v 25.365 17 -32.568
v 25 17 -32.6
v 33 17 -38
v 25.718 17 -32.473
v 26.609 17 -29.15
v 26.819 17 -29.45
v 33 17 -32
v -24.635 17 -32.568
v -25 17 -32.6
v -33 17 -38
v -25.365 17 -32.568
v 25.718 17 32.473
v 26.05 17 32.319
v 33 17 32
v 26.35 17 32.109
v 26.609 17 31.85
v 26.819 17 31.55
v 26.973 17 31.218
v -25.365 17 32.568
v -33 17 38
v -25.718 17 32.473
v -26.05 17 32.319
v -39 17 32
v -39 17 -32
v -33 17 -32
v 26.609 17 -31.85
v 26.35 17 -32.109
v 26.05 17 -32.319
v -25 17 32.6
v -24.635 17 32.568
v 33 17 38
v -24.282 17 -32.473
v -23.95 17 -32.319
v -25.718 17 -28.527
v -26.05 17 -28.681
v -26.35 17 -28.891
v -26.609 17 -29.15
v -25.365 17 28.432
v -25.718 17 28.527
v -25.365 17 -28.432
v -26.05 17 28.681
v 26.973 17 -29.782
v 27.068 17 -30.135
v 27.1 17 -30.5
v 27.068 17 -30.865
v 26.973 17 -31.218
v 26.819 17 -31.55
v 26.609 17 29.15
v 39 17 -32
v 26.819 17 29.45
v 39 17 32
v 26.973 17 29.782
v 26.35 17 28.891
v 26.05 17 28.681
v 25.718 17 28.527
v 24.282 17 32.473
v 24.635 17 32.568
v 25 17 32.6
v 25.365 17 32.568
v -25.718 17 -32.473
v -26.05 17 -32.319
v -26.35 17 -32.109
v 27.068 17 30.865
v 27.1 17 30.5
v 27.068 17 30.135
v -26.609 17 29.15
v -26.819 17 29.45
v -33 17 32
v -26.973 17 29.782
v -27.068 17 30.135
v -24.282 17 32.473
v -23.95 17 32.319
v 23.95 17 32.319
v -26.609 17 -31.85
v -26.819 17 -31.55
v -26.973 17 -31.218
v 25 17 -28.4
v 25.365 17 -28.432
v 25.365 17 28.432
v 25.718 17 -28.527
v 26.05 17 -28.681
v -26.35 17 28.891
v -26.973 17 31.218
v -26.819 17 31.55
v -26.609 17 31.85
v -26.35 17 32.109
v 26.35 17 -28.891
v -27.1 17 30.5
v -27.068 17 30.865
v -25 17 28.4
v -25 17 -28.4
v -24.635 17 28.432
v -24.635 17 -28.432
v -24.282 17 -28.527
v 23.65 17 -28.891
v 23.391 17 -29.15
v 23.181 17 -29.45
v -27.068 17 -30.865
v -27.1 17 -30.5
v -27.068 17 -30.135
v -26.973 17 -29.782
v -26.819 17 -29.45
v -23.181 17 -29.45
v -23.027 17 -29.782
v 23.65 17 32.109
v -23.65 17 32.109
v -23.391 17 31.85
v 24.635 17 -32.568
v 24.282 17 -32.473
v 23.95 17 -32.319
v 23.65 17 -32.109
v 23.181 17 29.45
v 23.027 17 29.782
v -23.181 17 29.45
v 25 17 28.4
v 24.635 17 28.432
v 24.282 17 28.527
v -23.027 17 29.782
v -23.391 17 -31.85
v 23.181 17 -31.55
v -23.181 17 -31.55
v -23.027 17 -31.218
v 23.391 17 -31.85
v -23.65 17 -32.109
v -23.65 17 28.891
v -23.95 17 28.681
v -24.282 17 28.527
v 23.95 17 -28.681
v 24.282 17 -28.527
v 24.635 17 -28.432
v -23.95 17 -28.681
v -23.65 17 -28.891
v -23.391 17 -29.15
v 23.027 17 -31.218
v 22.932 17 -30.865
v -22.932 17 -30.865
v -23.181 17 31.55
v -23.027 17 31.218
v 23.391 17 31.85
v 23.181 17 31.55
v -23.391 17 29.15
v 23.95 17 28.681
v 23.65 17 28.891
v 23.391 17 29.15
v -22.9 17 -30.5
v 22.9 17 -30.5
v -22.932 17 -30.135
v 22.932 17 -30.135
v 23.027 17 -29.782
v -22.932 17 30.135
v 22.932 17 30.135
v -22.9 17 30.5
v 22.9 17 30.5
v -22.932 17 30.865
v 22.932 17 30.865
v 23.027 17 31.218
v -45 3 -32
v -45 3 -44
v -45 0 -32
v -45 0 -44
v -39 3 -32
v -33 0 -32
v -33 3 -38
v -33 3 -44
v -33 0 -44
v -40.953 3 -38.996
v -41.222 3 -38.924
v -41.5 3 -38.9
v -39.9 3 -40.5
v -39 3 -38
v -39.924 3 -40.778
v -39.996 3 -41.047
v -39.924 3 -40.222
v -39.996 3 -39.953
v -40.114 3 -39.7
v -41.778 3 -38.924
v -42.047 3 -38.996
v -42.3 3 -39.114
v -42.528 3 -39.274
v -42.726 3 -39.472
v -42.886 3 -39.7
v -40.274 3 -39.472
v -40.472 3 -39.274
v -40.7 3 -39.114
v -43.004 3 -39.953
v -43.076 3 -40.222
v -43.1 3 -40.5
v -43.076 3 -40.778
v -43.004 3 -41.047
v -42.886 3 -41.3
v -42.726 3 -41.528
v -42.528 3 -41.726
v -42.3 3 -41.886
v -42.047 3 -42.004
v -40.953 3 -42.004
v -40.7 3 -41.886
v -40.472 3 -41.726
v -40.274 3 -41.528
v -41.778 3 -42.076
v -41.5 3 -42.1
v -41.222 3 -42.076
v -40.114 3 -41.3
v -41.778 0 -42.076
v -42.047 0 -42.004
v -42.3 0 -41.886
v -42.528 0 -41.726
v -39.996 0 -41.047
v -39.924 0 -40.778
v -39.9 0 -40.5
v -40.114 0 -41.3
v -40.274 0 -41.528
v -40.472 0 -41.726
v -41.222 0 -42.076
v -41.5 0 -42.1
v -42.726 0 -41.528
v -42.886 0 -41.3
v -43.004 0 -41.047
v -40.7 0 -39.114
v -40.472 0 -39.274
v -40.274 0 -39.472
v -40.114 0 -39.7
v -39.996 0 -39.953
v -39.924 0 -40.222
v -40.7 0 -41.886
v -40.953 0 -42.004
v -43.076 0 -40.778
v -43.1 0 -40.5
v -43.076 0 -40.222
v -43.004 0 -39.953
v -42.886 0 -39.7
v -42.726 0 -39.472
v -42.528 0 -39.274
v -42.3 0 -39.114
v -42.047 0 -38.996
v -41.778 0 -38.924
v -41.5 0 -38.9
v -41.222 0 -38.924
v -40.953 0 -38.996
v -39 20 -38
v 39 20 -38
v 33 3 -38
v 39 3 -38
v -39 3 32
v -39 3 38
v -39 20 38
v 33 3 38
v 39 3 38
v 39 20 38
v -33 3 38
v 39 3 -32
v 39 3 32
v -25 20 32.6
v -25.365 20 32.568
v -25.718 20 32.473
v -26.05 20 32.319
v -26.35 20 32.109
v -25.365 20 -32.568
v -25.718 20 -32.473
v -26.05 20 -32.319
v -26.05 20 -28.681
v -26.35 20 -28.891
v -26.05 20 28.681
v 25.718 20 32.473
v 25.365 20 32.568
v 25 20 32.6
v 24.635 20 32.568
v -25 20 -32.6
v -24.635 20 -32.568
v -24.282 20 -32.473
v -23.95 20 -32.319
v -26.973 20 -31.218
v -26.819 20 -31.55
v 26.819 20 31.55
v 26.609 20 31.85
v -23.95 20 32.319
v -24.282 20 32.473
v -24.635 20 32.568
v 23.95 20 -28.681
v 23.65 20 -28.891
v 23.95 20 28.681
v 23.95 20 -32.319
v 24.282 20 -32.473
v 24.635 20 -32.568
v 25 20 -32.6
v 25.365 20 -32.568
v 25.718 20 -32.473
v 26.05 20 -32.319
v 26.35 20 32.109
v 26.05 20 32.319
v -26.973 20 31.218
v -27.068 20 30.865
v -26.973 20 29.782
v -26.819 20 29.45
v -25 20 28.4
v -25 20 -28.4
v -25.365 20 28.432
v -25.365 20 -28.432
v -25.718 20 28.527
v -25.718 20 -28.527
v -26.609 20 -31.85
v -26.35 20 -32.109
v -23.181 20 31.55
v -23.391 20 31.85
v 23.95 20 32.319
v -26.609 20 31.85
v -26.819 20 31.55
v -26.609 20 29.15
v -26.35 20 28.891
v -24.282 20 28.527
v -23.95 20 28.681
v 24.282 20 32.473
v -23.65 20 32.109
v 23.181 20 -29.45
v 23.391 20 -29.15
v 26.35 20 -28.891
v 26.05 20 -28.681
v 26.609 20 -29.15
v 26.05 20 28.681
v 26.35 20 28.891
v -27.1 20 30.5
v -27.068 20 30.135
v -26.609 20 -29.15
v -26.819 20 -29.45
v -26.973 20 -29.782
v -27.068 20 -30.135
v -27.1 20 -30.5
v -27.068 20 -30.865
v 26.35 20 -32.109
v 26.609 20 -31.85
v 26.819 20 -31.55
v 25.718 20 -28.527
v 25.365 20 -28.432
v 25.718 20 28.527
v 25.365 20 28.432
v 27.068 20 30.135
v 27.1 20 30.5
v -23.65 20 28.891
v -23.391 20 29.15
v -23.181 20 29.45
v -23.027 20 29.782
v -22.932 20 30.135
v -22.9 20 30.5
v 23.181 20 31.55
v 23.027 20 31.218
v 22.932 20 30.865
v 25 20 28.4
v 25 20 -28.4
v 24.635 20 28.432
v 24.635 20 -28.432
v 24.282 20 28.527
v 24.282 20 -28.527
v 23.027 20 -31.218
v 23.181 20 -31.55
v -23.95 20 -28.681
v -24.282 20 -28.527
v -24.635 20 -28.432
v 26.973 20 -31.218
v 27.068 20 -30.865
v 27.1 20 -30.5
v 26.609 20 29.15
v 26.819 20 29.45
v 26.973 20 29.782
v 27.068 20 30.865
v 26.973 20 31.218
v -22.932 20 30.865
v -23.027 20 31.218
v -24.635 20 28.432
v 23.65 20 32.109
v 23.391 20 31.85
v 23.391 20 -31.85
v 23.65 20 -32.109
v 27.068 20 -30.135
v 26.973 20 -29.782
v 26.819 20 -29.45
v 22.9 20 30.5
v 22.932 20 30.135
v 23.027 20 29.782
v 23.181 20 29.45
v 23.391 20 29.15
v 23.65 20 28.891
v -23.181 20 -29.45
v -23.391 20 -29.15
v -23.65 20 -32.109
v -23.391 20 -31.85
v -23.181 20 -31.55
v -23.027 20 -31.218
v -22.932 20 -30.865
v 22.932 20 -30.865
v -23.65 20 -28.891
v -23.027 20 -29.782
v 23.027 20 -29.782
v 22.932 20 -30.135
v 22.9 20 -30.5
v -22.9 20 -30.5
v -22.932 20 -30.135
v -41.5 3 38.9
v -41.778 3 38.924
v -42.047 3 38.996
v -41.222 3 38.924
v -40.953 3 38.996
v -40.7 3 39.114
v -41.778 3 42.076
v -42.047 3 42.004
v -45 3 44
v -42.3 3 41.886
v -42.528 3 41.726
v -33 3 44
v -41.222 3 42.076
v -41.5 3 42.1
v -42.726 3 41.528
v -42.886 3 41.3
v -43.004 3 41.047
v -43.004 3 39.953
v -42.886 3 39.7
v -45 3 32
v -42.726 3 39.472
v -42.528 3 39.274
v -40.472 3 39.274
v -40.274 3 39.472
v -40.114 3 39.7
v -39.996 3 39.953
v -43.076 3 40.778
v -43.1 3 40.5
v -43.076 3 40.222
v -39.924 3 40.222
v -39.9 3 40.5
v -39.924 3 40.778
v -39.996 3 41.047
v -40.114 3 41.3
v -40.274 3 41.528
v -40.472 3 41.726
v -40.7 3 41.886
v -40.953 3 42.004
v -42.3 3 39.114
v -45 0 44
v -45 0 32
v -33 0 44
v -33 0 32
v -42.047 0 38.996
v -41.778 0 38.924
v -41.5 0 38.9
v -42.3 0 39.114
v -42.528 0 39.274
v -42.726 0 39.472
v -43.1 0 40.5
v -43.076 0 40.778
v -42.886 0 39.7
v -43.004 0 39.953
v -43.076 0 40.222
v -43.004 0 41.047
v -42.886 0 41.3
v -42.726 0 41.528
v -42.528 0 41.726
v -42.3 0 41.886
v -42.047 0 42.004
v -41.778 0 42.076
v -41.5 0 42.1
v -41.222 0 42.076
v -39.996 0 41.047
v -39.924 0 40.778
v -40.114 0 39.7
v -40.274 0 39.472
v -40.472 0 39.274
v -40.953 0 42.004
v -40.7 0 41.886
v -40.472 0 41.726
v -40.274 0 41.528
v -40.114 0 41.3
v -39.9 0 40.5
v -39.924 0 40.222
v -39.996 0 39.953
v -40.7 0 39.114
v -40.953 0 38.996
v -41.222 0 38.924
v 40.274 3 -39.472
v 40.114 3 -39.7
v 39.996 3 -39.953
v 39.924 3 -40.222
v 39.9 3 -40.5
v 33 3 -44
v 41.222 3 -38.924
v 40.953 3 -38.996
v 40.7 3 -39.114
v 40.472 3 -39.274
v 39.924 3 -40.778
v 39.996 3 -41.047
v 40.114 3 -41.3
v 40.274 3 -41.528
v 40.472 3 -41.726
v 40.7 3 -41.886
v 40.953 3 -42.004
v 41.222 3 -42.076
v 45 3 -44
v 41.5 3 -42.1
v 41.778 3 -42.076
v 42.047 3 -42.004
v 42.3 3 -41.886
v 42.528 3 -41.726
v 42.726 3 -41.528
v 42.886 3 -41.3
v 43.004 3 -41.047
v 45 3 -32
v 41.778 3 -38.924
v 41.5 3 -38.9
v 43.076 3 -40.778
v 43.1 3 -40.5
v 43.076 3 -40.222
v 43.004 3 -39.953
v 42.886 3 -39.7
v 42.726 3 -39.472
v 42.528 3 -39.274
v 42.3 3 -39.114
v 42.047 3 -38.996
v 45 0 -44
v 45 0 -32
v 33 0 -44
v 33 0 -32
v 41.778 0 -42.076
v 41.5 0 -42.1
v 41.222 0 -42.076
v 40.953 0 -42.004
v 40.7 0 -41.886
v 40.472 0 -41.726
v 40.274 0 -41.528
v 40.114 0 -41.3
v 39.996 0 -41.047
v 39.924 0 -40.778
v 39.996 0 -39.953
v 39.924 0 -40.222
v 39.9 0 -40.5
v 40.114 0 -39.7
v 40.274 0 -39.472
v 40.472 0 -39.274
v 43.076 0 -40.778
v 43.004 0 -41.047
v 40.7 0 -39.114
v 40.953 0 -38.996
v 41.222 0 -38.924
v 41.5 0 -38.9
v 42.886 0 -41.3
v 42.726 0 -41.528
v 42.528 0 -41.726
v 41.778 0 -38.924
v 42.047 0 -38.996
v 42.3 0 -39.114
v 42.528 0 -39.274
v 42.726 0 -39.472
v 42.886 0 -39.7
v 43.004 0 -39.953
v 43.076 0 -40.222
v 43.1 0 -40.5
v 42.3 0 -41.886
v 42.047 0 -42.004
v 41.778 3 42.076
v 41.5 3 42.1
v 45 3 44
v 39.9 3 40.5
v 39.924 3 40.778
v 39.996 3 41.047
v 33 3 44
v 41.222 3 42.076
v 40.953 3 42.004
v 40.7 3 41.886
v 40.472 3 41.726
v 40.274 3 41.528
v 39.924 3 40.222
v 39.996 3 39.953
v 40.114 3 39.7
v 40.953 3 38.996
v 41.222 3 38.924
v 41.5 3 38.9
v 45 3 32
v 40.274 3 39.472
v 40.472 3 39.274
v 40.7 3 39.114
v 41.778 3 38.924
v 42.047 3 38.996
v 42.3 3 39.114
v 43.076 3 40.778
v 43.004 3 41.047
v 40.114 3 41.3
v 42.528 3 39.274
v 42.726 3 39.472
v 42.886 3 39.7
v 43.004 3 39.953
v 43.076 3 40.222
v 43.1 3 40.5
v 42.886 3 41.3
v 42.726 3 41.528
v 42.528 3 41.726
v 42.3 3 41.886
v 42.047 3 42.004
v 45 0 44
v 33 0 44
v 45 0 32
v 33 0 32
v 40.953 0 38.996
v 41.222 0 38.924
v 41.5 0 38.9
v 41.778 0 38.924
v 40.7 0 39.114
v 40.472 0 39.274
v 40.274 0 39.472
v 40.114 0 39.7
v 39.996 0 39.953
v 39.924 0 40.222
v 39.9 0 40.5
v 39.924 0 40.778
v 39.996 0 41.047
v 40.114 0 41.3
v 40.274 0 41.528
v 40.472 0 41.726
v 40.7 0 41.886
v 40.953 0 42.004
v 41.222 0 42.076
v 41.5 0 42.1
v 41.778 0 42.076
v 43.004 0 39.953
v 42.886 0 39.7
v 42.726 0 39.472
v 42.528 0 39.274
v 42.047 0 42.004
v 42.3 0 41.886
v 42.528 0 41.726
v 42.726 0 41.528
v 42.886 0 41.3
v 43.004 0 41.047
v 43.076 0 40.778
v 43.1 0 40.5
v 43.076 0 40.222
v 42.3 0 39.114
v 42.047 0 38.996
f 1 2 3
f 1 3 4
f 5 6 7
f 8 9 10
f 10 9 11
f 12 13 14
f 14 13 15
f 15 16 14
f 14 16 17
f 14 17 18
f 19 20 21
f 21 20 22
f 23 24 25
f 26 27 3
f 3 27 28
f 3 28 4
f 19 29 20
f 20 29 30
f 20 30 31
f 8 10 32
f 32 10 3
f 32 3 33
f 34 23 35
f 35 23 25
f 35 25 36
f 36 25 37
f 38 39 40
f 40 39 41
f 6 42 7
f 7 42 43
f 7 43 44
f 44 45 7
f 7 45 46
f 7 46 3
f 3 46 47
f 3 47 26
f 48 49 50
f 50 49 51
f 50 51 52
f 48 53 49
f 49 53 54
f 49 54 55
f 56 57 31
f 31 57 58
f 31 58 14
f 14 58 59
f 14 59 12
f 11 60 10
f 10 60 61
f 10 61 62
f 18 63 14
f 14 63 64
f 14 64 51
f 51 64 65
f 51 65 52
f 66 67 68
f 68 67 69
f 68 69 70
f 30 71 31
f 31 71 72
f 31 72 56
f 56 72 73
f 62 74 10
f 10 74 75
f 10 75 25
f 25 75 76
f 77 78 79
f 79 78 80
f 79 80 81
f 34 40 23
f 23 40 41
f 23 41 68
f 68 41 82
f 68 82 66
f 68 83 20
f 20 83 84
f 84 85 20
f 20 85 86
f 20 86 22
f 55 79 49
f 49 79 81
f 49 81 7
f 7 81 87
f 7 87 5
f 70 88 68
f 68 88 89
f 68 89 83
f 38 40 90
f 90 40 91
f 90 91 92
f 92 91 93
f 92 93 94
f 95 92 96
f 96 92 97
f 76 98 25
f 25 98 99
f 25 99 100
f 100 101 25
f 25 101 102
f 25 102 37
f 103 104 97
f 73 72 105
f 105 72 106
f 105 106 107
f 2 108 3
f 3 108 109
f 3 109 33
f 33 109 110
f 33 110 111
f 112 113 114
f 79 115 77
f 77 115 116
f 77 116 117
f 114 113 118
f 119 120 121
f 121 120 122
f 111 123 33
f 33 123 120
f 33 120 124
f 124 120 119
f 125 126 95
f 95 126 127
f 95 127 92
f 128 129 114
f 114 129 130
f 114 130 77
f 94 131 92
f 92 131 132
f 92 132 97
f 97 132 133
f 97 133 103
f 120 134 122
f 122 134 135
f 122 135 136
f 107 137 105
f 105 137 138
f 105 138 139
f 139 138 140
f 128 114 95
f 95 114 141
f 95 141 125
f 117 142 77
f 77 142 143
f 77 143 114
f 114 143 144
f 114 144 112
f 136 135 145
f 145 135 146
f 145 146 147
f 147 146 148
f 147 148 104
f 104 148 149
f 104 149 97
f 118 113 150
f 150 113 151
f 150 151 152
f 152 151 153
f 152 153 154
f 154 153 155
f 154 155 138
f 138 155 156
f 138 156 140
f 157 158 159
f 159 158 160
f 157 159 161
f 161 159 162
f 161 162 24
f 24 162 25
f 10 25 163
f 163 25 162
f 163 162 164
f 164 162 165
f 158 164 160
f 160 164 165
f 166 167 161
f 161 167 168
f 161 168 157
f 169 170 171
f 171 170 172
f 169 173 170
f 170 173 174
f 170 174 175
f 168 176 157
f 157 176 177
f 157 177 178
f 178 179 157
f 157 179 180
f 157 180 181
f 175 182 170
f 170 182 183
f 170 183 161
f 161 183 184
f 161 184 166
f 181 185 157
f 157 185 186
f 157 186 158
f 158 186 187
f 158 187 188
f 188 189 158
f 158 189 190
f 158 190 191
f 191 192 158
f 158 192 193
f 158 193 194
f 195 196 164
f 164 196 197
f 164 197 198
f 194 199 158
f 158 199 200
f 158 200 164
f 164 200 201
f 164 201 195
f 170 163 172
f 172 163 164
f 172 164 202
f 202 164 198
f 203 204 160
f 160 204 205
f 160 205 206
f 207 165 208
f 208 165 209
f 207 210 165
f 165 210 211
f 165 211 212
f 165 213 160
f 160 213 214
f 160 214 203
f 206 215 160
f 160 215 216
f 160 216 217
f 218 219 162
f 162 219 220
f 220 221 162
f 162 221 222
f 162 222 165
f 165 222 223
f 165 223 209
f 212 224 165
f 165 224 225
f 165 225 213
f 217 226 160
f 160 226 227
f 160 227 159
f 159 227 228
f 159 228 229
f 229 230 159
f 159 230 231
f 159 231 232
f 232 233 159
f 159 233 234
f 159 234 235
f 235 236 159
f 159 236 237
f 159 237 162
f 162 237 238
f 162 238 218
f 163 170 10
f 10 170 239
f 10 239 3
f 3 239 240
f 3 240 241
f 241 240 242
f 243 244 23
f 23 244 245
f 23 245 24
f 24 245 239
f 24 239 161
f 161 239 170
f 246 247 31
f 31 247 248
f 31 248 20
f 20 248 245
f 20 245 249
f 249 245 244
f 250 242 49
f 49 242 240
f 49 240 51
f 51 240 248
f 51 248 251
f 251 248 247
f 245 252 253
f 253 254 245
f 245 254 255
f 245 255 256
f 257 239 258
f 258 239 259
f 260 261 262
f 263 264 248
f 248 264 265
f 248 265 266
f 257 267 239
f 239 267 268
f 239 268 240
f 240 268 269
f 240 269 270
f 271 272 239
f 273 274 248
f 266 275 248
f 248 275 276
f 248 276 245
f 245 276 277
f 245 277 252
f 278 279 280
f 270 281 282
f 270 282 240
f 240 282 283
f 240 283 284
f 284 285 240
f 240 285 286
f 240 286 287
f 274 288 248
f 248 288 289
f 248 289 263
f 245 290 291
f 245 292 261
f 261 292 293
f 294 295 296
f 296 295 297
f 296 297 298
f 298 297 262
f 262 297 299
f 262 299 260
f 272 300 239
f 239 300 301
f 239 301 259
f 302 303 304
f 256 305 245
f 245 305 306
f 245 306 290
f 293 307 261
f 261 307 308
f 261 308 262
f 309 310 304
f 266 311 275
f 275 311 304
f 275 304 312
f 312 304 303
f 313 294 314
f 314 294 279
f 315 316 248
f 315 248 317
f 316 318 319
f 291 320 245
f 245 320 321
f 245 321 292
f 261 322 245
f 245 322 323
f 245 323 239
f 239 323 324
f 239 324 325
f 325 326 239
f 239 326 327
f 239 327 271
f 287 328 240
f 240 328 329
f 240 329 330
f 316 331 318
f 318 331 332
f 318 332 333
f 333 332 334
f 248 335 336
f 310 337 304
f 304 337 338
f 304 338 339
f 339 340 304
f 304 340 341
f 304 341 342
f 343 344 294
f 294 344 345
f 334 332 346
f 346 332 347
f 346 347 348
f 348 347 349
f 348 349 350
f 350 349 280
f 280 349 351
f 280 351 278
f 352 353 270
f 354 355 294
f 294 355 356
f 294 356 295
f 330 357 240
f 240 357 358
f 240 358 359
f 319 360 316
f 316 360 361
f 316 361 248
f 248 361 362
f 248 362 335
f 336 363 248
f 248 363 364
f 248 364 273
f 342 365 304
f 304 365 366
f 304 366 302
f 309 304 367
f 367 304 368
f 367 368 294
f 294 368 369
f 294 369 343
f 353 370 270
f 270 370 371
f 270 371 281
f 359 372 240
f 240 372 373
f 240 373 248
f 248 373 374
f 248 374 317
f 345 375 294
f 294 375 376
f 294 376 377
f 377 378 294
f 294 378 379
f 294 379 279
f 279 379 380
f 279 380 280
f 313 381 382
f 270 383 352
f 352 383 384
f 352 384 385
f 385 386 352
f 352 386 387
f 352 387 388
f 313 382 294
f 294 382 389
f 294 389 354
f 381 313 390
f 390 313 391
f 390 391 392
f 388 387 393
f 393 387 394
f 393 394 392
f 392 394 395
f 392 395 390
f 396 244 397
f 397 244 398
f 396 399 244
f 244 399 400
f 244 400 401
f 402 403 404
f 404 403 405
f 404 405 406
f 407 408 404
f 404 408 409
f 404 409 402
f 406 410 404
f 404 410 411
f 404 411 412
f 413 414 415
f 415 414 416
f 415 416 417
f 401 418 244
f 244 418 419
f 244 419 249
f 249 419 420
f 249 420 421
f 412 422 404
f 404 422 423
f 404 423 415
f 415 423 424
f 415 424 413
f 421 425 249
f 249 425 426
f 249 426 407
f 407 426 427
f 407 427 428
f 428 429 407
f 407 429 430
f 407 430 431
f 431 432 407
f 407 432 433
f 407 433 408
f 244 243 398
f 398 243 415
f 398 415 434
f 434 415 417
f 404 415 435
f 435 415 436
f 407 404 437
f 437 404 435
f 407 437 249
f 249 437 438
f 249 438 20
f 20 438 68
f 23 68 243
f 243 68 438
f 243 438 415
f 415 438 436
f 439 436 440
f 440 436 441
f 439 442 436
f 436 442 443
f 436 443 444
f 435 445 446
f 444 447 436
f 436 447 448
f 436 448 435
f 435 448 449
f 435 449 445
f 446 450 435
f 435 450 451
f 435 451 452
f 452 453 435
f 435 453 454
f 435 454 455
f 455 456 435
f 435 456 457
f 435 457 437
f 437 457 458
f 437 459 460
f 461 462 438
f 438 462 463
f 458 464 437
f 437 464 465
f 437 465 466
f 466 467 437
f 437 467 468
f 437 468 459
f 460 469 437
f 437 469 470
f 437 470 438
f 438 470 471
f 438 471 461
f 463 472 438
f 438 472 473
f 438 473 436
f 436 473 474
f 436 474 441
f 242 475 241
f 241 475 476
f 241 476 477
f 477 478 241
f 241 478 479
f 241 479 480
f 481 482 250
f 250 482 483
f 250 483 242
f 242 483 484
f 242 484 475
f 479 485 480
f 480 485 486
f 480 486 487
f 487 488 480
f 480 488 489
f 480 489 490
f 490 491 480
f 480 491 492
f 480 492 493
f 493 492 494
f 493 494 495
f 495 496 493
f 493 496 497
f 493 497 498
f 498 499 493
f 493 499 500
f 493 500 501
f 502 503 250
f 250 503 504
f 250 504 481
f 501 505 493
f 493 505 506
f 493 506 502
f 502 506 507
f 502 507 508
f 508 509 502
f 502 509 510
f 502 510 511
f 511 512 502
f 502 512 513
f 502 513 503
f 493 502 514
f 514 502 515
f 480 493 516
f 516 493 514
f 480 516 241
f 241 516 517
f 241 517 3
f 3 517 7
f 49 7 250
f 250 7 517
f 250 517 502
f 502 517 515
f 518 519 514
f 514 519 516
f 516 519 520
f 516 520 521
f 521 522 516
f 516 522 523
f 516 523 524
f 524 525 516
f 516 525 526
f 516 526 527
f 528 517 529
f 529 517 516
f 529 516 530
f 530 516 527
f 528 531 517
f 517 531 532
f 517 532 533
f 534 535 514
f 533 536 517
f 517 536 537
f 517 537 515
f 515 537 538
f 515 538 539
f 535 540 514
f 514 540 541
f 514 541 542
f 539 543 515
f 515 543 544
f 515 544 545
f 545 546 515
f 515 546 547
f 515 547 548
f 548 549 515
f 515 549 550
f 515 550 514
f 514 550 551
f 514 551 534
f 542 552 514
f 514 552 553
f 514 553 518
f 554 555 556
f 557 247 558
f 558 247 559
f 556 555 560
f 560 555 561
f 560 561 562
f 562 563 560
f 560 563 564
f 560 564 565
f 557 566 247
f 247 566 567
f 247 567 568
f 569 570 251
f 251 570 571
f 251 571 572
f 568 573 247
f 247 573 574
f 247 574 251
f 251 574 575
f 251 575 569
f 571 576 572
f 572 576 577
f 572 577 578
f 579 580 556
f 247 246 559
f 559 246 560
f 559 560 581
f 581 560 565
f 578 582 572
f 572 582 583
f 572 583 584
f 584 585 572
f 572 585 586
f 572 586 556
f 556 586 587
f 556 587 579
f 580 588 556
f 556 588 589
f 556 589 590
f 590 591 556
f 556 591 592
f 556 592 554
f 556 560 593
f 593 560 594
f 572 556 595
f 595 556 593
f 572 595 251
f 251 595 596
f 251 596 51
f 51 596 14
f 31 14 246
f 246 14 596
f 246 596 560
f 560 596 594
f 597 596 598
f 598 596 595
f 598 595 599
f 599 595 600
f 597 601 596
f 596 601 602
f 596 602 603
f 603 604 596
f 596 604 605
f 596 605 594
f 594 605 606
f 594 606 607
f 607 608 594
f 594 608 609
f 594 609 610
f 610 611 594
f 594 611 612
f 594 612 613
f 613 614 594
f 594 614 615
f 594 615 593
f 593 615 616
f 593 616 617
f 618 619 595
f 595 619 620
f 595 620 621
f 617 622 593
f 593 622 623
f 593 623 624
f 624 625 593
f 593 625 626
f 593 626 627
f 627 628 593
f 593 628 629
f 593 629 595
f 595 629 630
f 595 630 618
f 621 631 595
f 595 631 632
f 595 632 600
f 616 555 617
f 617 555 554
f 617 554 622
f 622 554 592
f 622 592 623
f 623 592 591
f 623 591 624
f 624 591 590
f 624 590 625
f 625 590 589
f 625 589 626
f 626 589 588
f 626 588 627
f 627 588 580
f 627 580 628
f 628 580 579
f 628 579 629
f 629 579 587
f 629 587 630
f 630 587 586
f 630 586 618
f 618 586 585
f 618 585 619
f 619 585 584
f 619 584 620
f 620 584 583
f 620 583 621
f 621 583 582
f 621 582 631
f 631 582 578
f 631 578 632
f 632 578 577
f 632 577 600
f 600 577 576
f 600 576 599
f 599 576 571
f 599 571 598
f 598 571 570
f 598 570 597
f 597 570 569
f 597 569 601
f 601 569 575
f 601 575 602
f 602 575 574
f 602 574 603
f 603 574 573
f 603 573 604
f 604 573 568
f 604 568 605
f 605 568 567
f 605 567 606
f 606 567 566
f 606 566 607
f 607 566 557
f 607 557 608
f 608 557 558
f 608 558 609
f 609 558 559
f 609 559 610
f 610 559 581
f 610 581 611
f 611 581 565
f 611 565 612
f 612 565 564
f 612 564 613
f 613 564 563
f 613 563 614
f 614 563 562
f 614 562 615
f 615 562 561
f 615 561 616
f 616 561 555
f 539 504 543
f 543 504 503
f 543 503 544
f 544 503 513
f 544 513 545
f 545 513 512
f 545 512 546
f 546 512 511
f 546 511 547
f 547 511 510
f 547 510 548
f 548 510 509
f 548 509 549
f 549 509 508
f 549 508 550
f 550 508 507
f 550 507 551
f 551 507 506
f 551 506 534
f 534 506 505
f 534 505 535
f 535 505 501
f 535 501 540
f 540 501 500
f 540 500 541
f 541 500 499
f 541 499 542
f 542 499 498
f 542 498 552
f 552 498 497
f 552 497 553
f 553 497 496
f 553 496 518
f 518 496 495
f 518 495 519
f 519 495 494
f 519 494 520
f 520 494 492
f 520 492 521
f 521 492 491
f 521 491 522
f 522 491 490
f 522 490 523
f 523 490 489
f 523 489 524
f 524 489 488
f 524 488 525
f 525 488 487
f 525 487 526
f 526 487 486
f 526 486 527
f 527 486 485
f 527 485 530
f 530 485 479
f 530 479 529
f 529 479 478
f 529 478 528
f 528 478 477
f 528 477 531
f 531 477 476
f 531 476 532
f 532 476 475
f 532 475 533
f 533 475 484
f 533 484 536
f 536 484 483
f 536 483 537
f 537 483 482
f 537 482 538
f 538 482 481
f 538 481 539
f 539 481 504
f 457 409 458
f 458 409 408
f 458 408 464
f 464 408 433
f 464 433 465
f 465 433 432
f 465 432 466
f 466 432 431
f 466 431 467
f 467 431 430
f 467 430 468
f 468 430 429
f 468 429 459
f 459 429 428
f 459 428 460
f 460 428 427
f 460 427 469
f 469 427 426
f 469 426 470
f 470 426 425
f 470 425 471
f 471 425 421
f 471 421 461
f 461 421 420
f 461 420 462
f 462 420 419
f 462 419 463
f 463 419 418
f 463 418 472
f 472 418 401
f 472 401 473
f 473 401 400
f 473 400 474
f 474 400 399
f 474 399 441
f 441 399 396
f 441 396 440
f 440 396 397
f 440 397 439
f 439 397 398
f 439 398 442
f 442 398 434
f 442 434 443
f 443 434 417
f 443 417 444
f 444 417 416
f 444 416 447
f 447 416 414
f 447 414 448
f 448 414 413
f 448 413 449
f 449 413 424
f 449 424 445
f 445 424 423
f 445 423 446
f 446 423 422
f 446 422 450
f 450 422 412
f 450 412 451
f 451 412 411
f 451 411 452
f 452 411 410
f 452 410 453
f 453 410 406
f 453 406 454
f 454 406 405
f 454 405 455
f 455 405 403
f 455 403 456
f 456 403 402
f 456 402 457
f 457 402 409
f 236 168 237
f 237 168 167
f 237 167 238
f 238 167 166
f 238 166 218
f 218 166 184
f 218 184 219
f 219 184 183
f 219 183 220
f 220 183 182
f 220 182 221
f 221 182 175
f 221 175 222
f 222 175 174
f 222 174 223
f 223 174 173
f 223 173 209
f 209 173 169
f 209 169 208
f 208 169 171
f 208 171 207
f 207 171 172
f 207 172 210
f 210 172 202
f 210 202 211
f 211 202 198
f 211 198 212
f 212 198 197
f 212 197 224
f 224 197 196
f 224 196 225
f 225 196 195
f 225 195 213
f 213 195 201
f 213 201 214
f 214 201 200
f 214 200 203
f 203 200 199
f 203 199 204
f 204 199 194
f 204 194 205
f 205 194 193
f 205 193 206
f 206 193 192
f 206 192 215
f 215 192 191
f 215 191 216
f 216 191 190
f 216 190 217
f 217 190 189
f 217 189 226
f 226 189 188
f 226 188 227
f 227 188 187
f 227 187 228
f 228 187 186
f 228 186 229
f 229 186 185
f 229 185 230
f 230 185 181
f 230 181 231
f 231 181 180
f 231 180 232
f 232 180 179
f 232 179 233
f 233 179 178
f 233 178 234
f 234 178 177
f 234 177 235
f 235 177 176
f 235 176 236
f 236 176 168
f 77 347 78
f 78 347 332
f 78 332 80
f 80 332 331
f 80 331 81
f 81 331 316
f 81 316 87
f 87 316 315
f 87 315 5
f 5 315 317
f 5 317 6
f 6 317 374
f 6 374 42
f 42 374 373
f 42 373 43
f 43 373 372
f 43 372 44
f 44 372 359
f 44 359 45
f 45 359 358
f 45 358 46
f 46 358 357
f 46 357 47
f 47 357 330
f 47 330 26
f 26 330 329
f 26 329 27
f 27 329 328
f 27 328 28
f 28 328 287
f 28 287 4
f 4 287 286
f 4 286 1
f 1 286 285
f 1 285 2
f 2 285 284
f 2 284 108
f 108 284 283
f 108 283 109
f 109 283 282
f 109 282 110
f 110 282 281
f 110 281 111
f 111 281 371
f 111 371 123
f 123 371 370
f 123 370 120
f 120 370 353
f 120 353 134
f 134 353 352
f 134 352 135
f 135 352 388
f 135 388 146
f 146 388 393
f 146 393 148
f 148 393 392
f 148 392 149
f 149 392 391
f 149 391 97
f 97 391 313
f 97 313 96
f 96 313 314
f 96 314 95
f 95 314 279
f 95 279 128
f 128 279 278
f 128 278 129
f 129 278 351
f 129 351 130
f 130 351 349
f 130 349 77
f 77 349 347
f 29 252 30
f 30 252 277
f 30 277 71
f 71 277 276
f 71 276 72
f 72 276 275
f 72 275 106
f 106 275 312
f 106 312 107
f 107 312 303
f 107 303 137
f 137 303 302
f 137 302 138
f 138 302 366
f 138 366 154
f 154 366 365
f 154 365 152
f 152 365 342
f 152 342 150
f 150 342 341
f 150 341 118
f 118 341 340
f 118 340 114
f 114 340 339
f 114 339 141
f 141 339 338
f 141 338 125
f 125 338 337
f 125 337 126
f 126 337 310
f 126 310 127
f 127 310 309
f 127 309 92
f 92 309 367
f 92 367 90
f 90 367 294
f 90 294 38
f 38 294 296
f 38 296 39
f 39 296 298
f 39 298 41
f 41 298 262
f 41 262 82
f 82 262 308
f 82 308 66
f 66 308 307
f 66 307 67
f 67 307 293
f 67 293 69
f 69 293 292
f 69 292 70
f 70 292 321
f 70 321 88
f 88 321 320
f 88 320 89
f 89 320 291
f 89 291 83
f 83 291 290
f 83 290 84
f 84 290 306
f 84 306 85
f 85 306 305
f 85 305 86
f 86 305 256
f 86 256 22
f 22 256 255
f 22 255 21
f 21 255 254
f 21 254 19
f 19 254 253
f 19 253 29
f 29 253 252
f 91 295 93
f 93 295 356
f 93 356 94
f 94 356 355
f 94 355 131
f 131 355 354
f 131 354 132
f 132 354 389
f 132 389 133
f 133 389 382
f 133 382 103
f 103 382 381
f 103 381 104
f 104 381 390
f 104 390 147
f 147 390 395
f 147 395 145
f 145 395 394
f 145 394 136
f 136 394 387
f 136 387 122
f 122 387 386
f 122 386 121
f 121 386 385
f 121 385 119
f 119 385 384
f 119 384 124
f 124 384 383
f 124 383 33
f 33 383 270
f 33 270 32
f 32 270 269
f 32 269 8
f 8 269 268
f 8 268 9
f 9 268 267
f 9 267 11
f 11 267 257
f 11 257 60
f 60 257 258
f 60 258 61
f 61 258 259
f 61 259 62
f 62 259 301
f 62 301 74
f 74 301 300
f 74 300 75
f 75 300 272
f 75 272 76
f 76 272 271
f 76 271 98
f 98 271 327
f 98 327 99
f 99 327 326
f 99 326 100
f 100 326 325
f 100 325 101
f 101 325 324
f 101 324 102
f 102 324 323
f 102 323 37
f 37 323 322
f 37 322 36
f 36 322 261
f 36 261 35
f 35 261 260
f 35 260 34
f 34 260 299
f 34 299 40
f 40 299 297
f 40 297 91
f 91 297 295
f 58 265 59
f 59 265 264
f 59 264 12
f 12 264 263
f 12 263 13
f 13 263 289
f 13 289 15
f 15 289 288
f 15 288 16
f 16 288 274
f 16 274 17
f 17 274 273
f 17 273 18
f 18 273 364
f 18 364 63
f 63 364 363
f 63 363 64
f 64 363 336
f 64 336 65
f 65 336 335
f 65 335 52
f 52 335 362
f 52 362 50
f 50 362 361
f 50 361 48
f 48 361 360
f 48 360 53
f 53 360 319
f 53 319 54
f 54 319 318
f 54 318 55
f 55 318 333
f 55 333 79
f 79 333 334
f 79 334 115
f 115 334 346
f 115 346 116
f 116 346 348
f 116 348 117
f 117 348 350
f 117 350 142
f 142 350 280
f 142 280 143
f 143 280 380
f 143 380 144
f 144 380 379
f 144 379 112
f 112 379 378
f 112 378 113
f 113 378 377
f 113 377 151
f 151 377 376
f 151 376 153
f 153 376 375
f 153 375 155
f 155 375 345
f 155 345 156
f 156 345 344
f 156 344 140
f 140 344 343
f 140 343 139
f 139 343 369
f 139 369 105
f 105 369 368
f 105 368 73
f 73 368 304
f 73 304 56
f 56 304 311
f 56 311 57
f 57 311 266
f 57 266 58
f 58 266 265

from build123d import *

# Parameters (mm, degrees)
SKETCH1_W             = 12
SKETCH1_H             = 12
BOSS_EXTRUDE1_DEPTH   = 3
BOSS_EXTRUDE1_2_DEPTH = 3
BOSS_EXTRUDE1_3_DEPTH = 3
BOSS_EXTRUDE1_4_DEPTH = 3
SKETCH2_W             = 6
SKETCH2_H             = 6
BOSS_EXTRUDE3_DEPTH   = 14
SKETCH3_W             = 78
SKETCH3_H             = 76
BOSS_EXTRUDE4_DEPTH   = 3
CUT_EXTRUDE1_REACH    = 5
SKETCH4_R             = 1.6
CUT_EXTRUDE2_REACH    = 22
SKETCH5_R             = 2.1


with BuildPart() as part:
    # Sketch1 → Boss-Extrude1 (new body)
    with BuildSketch(Plane(origin=(0, 0, 0), x_dir=(1, 0, 0), z_dir=(0, 1, 0))):
        with Locations((-39, -38)):
            Rectangle(SKETCH1_W, SKETCH1_H)
    extrude(amount=BOSS_EXTRUDE1_DEPTH)



with BuildPart() as body_2:
    # Sketch1 → Boss-Extrude1 2 (new body)
    with BuildSketch(Plane(origin=(0, 0, 0), x_dir=(1, 0, 0), z_dir=(0, 1, 0))):
        with Locations((-39, 38)):
            Rectangle(SKETCH1_W, SKETCH1_H)
    extrude(amount=BOSS_EXTRUDE1_2_DEPTH)


with BuildPart() as body_3:
    # Sketch1 → Boss-Extrude1 3 (new body)
    with BuildSketch(Plane(origin=(0, 0, 0), x_dir=(1, 0, 0), z_dir=(0, 1, 0))):
        with Locations((39, 38)):
            Rectangle(SKETCH1_W, SKETCH1_H)
    extrude(amount=BOSS_EXTRUDE1_3_DEPTH)


with BuildPart() as body_4:
    # Sketch1 → Boss-Extrude1 4 (new body)
    with BuildSketch(Plane(origin=(0, 0, 0), x_dir=(1, 0, 0), z_dir=(0, 1, 0))):
        with Locations((39, -38)):
            Rectangle(SKETCH1_W, SKETCH1_H)
    extrude(amount=BOSS_EXTRUDE1_4_DEPTH)


with BuildPart() as part_1:
    add(part.part)

    add(body_2.part)  # Boss-Extrude3 merges body 2

    add(body_3.part)  # Boss-Extrude3 merges body 3

    add(body_4.part)  # Boss-Extrude3 merges body 4
    # Sketch2 → Boss-Extrude3 (add)
    with BuildSketch(Plane(origin=(0, 3, 0), x_dir=(1, 0, 0), z_dir=(0, 1, 0))):
        with Locations((-36, 35)):
            Rectangle(SKETCH2_W, SKETCH2_H)
        with Locations((-36, -35)):
            Rectangle(SKETCH2_W, SKETCH2_H)
        with Locations((36, 35)):
            Rectangle(SKETCH2_W, SKETCH2_H)
        with Locations((36, -35)):
            Rectangle(SKETCH2_W, SKETCH2_H)
    extrude(amount=BOSS_EXTRUDE3_DEPTH)

    # Sketch3 → Boss-Extrude4 (add)
    with BuildSketch(Plane(origin=(0, 17, 0), x_dir=(1, 0, 0), z_dir=(0, 1, 0))):
        Rectangle(SKETCH3_W, SKETCH3_H)
    extrude(amount=BOSS_EXTRUDE4_DEPTH)

    # Sketch4 → Cut-Extrude1 (cut, up to next)
    with BuildSketch(Plane(origin=(0, 3, 0), x_dir=(1, 0, 0), z_dir=(0, 1, 0)), mode=Mode.PRIVATE) as cut_extrude1_sk1:
        with Locations((41.5, -40.5)):
            Circle(SKETCH4_R)
    cut_extrude1_tool1 = extrude(cut_extrude1_sk1.sketch, amount=-CUT_EXTRUDE1_REACH, mode=Mode.PRIVATE) & part_1.part
    add(cut_extrude1_tool1.solids().sort_by_distance((41.5, 3, 40.5))[0], mode=Mode.SUBTRACT)
    # Sketch4 → Cut-Extrude1 (cut, up to next)
    with BuildSketch(Plane(origin=(0, 3, 0), x_dir=(1, 0, 0), z_dir=(0, 1, 0)), mode=Mode.PRIVATE) as cut_extrude1_sk2:
        with Locations((-41.5, 40.5)):
            Circle(SKETCH4_R)
    cut_extrude1_tool2 = extrude(cut_extrude1_sk2.sketch, amount=-CUT_EXTRUDE1_REACH, mode=Mode.PRIVATE) & part_1.part
    add(cut_extrude1_tool2.solids().sort_by_distance((-41.5, 3, -40.5))[0], mode=Mode.SUBTRACT)
    # Sketch4 → Cut-Extrude1 (cut, up to next)
    with BuildSketch(Plane(origin=(0, 3, 0), x_dir=(1, 0, 0), z_dir=(0, 1, 0)), mode=Mode.PRIVATE) as cut_extrude1_sk3:
        with Locations((-41.5, -40.5)):
            Circle(SKETCH4_R)
    cut_extrude1_tool3 = extrude(cut_extrude1_sk3.sketch, amount=-CUT_EXTRUDE1_REACH, mode=Mode.PRIVATE) & part_1.part
    add(cut_extrude1_tool3.solids().sort_by_distance((-41.5, 3, 40.5))[0], mode=Mode.SUBTRACT)
    # Sketch4 → Cut-Extrude1 (cut, up to next)
    with BuildSketch(Plane(origin=(0, 3, 0), x_dir=(1, 0, 0), z_dir=(0, 1, 0)), mode=Mode.PRIVATE) as cut_extrude1_sk4:
        with Locations((41.5, 40.5)):
            Circle(SKETCH4_R)
    cut_extrude1_tool4 = extrude(cut_extrude1_sk4.sketch, amount=-CUT_EXTRUDE1_REACH, mode=Mode.PRIVATE) & part_1.part
    add(cut_extrude1_tool4.solids().sort_by_distance((41.5, 3, -40.5))[0], mode=Mode.SUBTRACT)

    # Sketch5 → Cut-Extrude2 (cut, up to next)
    with BuildSketch(Plane(origin=(0, 20, 0), x_dir=(1, 0, 0), z_dir=(0, 1, 0)), mode=Mode.PRIVATE) as cut_extrude2_sk1:
        with Locations((25, 30.5)):
            Circle(SKETCH5_R)
    cut_extrude2_tool1 = extrude(cut_extrude2_sk1.sketch, amount=-CUT_EXTRUDE2_REACH, mode=Mode.PRIVATE) & part_1.part
    add(cut_extrude2_tool1.solids().sort_by_distance((25, 20, -30.5))[0], mode=Mode.SUBTRACT)
    # Sketch5 → Cut-Extrude2 (cut, up to next)
    with BuildSketch(Plane(origin=(0, 20, 0), x_dir=(1, 0, 0), z_dir=(0, 1, 0)), mode=Mode.PRIVATE) as cut_extrude2_sk2:
        with Locations((25, -30.5)):
            Circle(SKETCH5_R)
    cut_extrude2_tool2 = extrude(cut_extrude2_sk2.sketch, amount=-CUT_EXTRUDE2_REACH, mode=Mode.PRIVATE) & part_1.part
    add(cut_extrude2_tool2.solids().sort_by_distance((25, 20, 30.5))[0], mode=Mode.SUBTRACT)
    # Sketch5 → Cut-Extrude2 (cut, up to next)
    with BuildSketch(Plane(origin=(0, 20, 0), x_dir=(1, 0, 0), z_dir=(0, 1, 0)), mode=Mode.PRIVATE) as cut_extrude2_sk3:
        with Locations((-25, 30.5)):
            Circle(SKETCH5_R)
    cut_extrude2_tool3 = extrude(cut_extrude2_sk3.sketch, amount=-CUT_EXTRUDE2_REACH, mode=Mode.PRIVATE) & part_1.part
    add(cut_extrude2_tool3.solids().sort_by_distance((-25, 20, -30.5))[0], mode=Mode.SUBTRACT)
    # Sketch5 → Cut-Extrude2 (cut, up to next)
    with BuildSketch(Plane(origin=(0, 20, 0), x_dir=(1, 0, 0), z_dir=(0, 1, 0)), mode=Mode.PRIVATE) as cut_extrude2_sk4:
        with Locations((-25, -30.5)):
            Circle(SKETCH5_R)
    cut_extrude2_tool4 = extrude(cut_extrude2_sk4.sketch, amount=-CUT_EXTRUDE2_REACH, mode=Mode.PRIVATE) & part_1.part
    add(cut_extrude2_tool4.solids().sort_by_distance((-25, 20, 30.5))[0], mode=Mode.SUBTRACT)


solid = part_1.part
